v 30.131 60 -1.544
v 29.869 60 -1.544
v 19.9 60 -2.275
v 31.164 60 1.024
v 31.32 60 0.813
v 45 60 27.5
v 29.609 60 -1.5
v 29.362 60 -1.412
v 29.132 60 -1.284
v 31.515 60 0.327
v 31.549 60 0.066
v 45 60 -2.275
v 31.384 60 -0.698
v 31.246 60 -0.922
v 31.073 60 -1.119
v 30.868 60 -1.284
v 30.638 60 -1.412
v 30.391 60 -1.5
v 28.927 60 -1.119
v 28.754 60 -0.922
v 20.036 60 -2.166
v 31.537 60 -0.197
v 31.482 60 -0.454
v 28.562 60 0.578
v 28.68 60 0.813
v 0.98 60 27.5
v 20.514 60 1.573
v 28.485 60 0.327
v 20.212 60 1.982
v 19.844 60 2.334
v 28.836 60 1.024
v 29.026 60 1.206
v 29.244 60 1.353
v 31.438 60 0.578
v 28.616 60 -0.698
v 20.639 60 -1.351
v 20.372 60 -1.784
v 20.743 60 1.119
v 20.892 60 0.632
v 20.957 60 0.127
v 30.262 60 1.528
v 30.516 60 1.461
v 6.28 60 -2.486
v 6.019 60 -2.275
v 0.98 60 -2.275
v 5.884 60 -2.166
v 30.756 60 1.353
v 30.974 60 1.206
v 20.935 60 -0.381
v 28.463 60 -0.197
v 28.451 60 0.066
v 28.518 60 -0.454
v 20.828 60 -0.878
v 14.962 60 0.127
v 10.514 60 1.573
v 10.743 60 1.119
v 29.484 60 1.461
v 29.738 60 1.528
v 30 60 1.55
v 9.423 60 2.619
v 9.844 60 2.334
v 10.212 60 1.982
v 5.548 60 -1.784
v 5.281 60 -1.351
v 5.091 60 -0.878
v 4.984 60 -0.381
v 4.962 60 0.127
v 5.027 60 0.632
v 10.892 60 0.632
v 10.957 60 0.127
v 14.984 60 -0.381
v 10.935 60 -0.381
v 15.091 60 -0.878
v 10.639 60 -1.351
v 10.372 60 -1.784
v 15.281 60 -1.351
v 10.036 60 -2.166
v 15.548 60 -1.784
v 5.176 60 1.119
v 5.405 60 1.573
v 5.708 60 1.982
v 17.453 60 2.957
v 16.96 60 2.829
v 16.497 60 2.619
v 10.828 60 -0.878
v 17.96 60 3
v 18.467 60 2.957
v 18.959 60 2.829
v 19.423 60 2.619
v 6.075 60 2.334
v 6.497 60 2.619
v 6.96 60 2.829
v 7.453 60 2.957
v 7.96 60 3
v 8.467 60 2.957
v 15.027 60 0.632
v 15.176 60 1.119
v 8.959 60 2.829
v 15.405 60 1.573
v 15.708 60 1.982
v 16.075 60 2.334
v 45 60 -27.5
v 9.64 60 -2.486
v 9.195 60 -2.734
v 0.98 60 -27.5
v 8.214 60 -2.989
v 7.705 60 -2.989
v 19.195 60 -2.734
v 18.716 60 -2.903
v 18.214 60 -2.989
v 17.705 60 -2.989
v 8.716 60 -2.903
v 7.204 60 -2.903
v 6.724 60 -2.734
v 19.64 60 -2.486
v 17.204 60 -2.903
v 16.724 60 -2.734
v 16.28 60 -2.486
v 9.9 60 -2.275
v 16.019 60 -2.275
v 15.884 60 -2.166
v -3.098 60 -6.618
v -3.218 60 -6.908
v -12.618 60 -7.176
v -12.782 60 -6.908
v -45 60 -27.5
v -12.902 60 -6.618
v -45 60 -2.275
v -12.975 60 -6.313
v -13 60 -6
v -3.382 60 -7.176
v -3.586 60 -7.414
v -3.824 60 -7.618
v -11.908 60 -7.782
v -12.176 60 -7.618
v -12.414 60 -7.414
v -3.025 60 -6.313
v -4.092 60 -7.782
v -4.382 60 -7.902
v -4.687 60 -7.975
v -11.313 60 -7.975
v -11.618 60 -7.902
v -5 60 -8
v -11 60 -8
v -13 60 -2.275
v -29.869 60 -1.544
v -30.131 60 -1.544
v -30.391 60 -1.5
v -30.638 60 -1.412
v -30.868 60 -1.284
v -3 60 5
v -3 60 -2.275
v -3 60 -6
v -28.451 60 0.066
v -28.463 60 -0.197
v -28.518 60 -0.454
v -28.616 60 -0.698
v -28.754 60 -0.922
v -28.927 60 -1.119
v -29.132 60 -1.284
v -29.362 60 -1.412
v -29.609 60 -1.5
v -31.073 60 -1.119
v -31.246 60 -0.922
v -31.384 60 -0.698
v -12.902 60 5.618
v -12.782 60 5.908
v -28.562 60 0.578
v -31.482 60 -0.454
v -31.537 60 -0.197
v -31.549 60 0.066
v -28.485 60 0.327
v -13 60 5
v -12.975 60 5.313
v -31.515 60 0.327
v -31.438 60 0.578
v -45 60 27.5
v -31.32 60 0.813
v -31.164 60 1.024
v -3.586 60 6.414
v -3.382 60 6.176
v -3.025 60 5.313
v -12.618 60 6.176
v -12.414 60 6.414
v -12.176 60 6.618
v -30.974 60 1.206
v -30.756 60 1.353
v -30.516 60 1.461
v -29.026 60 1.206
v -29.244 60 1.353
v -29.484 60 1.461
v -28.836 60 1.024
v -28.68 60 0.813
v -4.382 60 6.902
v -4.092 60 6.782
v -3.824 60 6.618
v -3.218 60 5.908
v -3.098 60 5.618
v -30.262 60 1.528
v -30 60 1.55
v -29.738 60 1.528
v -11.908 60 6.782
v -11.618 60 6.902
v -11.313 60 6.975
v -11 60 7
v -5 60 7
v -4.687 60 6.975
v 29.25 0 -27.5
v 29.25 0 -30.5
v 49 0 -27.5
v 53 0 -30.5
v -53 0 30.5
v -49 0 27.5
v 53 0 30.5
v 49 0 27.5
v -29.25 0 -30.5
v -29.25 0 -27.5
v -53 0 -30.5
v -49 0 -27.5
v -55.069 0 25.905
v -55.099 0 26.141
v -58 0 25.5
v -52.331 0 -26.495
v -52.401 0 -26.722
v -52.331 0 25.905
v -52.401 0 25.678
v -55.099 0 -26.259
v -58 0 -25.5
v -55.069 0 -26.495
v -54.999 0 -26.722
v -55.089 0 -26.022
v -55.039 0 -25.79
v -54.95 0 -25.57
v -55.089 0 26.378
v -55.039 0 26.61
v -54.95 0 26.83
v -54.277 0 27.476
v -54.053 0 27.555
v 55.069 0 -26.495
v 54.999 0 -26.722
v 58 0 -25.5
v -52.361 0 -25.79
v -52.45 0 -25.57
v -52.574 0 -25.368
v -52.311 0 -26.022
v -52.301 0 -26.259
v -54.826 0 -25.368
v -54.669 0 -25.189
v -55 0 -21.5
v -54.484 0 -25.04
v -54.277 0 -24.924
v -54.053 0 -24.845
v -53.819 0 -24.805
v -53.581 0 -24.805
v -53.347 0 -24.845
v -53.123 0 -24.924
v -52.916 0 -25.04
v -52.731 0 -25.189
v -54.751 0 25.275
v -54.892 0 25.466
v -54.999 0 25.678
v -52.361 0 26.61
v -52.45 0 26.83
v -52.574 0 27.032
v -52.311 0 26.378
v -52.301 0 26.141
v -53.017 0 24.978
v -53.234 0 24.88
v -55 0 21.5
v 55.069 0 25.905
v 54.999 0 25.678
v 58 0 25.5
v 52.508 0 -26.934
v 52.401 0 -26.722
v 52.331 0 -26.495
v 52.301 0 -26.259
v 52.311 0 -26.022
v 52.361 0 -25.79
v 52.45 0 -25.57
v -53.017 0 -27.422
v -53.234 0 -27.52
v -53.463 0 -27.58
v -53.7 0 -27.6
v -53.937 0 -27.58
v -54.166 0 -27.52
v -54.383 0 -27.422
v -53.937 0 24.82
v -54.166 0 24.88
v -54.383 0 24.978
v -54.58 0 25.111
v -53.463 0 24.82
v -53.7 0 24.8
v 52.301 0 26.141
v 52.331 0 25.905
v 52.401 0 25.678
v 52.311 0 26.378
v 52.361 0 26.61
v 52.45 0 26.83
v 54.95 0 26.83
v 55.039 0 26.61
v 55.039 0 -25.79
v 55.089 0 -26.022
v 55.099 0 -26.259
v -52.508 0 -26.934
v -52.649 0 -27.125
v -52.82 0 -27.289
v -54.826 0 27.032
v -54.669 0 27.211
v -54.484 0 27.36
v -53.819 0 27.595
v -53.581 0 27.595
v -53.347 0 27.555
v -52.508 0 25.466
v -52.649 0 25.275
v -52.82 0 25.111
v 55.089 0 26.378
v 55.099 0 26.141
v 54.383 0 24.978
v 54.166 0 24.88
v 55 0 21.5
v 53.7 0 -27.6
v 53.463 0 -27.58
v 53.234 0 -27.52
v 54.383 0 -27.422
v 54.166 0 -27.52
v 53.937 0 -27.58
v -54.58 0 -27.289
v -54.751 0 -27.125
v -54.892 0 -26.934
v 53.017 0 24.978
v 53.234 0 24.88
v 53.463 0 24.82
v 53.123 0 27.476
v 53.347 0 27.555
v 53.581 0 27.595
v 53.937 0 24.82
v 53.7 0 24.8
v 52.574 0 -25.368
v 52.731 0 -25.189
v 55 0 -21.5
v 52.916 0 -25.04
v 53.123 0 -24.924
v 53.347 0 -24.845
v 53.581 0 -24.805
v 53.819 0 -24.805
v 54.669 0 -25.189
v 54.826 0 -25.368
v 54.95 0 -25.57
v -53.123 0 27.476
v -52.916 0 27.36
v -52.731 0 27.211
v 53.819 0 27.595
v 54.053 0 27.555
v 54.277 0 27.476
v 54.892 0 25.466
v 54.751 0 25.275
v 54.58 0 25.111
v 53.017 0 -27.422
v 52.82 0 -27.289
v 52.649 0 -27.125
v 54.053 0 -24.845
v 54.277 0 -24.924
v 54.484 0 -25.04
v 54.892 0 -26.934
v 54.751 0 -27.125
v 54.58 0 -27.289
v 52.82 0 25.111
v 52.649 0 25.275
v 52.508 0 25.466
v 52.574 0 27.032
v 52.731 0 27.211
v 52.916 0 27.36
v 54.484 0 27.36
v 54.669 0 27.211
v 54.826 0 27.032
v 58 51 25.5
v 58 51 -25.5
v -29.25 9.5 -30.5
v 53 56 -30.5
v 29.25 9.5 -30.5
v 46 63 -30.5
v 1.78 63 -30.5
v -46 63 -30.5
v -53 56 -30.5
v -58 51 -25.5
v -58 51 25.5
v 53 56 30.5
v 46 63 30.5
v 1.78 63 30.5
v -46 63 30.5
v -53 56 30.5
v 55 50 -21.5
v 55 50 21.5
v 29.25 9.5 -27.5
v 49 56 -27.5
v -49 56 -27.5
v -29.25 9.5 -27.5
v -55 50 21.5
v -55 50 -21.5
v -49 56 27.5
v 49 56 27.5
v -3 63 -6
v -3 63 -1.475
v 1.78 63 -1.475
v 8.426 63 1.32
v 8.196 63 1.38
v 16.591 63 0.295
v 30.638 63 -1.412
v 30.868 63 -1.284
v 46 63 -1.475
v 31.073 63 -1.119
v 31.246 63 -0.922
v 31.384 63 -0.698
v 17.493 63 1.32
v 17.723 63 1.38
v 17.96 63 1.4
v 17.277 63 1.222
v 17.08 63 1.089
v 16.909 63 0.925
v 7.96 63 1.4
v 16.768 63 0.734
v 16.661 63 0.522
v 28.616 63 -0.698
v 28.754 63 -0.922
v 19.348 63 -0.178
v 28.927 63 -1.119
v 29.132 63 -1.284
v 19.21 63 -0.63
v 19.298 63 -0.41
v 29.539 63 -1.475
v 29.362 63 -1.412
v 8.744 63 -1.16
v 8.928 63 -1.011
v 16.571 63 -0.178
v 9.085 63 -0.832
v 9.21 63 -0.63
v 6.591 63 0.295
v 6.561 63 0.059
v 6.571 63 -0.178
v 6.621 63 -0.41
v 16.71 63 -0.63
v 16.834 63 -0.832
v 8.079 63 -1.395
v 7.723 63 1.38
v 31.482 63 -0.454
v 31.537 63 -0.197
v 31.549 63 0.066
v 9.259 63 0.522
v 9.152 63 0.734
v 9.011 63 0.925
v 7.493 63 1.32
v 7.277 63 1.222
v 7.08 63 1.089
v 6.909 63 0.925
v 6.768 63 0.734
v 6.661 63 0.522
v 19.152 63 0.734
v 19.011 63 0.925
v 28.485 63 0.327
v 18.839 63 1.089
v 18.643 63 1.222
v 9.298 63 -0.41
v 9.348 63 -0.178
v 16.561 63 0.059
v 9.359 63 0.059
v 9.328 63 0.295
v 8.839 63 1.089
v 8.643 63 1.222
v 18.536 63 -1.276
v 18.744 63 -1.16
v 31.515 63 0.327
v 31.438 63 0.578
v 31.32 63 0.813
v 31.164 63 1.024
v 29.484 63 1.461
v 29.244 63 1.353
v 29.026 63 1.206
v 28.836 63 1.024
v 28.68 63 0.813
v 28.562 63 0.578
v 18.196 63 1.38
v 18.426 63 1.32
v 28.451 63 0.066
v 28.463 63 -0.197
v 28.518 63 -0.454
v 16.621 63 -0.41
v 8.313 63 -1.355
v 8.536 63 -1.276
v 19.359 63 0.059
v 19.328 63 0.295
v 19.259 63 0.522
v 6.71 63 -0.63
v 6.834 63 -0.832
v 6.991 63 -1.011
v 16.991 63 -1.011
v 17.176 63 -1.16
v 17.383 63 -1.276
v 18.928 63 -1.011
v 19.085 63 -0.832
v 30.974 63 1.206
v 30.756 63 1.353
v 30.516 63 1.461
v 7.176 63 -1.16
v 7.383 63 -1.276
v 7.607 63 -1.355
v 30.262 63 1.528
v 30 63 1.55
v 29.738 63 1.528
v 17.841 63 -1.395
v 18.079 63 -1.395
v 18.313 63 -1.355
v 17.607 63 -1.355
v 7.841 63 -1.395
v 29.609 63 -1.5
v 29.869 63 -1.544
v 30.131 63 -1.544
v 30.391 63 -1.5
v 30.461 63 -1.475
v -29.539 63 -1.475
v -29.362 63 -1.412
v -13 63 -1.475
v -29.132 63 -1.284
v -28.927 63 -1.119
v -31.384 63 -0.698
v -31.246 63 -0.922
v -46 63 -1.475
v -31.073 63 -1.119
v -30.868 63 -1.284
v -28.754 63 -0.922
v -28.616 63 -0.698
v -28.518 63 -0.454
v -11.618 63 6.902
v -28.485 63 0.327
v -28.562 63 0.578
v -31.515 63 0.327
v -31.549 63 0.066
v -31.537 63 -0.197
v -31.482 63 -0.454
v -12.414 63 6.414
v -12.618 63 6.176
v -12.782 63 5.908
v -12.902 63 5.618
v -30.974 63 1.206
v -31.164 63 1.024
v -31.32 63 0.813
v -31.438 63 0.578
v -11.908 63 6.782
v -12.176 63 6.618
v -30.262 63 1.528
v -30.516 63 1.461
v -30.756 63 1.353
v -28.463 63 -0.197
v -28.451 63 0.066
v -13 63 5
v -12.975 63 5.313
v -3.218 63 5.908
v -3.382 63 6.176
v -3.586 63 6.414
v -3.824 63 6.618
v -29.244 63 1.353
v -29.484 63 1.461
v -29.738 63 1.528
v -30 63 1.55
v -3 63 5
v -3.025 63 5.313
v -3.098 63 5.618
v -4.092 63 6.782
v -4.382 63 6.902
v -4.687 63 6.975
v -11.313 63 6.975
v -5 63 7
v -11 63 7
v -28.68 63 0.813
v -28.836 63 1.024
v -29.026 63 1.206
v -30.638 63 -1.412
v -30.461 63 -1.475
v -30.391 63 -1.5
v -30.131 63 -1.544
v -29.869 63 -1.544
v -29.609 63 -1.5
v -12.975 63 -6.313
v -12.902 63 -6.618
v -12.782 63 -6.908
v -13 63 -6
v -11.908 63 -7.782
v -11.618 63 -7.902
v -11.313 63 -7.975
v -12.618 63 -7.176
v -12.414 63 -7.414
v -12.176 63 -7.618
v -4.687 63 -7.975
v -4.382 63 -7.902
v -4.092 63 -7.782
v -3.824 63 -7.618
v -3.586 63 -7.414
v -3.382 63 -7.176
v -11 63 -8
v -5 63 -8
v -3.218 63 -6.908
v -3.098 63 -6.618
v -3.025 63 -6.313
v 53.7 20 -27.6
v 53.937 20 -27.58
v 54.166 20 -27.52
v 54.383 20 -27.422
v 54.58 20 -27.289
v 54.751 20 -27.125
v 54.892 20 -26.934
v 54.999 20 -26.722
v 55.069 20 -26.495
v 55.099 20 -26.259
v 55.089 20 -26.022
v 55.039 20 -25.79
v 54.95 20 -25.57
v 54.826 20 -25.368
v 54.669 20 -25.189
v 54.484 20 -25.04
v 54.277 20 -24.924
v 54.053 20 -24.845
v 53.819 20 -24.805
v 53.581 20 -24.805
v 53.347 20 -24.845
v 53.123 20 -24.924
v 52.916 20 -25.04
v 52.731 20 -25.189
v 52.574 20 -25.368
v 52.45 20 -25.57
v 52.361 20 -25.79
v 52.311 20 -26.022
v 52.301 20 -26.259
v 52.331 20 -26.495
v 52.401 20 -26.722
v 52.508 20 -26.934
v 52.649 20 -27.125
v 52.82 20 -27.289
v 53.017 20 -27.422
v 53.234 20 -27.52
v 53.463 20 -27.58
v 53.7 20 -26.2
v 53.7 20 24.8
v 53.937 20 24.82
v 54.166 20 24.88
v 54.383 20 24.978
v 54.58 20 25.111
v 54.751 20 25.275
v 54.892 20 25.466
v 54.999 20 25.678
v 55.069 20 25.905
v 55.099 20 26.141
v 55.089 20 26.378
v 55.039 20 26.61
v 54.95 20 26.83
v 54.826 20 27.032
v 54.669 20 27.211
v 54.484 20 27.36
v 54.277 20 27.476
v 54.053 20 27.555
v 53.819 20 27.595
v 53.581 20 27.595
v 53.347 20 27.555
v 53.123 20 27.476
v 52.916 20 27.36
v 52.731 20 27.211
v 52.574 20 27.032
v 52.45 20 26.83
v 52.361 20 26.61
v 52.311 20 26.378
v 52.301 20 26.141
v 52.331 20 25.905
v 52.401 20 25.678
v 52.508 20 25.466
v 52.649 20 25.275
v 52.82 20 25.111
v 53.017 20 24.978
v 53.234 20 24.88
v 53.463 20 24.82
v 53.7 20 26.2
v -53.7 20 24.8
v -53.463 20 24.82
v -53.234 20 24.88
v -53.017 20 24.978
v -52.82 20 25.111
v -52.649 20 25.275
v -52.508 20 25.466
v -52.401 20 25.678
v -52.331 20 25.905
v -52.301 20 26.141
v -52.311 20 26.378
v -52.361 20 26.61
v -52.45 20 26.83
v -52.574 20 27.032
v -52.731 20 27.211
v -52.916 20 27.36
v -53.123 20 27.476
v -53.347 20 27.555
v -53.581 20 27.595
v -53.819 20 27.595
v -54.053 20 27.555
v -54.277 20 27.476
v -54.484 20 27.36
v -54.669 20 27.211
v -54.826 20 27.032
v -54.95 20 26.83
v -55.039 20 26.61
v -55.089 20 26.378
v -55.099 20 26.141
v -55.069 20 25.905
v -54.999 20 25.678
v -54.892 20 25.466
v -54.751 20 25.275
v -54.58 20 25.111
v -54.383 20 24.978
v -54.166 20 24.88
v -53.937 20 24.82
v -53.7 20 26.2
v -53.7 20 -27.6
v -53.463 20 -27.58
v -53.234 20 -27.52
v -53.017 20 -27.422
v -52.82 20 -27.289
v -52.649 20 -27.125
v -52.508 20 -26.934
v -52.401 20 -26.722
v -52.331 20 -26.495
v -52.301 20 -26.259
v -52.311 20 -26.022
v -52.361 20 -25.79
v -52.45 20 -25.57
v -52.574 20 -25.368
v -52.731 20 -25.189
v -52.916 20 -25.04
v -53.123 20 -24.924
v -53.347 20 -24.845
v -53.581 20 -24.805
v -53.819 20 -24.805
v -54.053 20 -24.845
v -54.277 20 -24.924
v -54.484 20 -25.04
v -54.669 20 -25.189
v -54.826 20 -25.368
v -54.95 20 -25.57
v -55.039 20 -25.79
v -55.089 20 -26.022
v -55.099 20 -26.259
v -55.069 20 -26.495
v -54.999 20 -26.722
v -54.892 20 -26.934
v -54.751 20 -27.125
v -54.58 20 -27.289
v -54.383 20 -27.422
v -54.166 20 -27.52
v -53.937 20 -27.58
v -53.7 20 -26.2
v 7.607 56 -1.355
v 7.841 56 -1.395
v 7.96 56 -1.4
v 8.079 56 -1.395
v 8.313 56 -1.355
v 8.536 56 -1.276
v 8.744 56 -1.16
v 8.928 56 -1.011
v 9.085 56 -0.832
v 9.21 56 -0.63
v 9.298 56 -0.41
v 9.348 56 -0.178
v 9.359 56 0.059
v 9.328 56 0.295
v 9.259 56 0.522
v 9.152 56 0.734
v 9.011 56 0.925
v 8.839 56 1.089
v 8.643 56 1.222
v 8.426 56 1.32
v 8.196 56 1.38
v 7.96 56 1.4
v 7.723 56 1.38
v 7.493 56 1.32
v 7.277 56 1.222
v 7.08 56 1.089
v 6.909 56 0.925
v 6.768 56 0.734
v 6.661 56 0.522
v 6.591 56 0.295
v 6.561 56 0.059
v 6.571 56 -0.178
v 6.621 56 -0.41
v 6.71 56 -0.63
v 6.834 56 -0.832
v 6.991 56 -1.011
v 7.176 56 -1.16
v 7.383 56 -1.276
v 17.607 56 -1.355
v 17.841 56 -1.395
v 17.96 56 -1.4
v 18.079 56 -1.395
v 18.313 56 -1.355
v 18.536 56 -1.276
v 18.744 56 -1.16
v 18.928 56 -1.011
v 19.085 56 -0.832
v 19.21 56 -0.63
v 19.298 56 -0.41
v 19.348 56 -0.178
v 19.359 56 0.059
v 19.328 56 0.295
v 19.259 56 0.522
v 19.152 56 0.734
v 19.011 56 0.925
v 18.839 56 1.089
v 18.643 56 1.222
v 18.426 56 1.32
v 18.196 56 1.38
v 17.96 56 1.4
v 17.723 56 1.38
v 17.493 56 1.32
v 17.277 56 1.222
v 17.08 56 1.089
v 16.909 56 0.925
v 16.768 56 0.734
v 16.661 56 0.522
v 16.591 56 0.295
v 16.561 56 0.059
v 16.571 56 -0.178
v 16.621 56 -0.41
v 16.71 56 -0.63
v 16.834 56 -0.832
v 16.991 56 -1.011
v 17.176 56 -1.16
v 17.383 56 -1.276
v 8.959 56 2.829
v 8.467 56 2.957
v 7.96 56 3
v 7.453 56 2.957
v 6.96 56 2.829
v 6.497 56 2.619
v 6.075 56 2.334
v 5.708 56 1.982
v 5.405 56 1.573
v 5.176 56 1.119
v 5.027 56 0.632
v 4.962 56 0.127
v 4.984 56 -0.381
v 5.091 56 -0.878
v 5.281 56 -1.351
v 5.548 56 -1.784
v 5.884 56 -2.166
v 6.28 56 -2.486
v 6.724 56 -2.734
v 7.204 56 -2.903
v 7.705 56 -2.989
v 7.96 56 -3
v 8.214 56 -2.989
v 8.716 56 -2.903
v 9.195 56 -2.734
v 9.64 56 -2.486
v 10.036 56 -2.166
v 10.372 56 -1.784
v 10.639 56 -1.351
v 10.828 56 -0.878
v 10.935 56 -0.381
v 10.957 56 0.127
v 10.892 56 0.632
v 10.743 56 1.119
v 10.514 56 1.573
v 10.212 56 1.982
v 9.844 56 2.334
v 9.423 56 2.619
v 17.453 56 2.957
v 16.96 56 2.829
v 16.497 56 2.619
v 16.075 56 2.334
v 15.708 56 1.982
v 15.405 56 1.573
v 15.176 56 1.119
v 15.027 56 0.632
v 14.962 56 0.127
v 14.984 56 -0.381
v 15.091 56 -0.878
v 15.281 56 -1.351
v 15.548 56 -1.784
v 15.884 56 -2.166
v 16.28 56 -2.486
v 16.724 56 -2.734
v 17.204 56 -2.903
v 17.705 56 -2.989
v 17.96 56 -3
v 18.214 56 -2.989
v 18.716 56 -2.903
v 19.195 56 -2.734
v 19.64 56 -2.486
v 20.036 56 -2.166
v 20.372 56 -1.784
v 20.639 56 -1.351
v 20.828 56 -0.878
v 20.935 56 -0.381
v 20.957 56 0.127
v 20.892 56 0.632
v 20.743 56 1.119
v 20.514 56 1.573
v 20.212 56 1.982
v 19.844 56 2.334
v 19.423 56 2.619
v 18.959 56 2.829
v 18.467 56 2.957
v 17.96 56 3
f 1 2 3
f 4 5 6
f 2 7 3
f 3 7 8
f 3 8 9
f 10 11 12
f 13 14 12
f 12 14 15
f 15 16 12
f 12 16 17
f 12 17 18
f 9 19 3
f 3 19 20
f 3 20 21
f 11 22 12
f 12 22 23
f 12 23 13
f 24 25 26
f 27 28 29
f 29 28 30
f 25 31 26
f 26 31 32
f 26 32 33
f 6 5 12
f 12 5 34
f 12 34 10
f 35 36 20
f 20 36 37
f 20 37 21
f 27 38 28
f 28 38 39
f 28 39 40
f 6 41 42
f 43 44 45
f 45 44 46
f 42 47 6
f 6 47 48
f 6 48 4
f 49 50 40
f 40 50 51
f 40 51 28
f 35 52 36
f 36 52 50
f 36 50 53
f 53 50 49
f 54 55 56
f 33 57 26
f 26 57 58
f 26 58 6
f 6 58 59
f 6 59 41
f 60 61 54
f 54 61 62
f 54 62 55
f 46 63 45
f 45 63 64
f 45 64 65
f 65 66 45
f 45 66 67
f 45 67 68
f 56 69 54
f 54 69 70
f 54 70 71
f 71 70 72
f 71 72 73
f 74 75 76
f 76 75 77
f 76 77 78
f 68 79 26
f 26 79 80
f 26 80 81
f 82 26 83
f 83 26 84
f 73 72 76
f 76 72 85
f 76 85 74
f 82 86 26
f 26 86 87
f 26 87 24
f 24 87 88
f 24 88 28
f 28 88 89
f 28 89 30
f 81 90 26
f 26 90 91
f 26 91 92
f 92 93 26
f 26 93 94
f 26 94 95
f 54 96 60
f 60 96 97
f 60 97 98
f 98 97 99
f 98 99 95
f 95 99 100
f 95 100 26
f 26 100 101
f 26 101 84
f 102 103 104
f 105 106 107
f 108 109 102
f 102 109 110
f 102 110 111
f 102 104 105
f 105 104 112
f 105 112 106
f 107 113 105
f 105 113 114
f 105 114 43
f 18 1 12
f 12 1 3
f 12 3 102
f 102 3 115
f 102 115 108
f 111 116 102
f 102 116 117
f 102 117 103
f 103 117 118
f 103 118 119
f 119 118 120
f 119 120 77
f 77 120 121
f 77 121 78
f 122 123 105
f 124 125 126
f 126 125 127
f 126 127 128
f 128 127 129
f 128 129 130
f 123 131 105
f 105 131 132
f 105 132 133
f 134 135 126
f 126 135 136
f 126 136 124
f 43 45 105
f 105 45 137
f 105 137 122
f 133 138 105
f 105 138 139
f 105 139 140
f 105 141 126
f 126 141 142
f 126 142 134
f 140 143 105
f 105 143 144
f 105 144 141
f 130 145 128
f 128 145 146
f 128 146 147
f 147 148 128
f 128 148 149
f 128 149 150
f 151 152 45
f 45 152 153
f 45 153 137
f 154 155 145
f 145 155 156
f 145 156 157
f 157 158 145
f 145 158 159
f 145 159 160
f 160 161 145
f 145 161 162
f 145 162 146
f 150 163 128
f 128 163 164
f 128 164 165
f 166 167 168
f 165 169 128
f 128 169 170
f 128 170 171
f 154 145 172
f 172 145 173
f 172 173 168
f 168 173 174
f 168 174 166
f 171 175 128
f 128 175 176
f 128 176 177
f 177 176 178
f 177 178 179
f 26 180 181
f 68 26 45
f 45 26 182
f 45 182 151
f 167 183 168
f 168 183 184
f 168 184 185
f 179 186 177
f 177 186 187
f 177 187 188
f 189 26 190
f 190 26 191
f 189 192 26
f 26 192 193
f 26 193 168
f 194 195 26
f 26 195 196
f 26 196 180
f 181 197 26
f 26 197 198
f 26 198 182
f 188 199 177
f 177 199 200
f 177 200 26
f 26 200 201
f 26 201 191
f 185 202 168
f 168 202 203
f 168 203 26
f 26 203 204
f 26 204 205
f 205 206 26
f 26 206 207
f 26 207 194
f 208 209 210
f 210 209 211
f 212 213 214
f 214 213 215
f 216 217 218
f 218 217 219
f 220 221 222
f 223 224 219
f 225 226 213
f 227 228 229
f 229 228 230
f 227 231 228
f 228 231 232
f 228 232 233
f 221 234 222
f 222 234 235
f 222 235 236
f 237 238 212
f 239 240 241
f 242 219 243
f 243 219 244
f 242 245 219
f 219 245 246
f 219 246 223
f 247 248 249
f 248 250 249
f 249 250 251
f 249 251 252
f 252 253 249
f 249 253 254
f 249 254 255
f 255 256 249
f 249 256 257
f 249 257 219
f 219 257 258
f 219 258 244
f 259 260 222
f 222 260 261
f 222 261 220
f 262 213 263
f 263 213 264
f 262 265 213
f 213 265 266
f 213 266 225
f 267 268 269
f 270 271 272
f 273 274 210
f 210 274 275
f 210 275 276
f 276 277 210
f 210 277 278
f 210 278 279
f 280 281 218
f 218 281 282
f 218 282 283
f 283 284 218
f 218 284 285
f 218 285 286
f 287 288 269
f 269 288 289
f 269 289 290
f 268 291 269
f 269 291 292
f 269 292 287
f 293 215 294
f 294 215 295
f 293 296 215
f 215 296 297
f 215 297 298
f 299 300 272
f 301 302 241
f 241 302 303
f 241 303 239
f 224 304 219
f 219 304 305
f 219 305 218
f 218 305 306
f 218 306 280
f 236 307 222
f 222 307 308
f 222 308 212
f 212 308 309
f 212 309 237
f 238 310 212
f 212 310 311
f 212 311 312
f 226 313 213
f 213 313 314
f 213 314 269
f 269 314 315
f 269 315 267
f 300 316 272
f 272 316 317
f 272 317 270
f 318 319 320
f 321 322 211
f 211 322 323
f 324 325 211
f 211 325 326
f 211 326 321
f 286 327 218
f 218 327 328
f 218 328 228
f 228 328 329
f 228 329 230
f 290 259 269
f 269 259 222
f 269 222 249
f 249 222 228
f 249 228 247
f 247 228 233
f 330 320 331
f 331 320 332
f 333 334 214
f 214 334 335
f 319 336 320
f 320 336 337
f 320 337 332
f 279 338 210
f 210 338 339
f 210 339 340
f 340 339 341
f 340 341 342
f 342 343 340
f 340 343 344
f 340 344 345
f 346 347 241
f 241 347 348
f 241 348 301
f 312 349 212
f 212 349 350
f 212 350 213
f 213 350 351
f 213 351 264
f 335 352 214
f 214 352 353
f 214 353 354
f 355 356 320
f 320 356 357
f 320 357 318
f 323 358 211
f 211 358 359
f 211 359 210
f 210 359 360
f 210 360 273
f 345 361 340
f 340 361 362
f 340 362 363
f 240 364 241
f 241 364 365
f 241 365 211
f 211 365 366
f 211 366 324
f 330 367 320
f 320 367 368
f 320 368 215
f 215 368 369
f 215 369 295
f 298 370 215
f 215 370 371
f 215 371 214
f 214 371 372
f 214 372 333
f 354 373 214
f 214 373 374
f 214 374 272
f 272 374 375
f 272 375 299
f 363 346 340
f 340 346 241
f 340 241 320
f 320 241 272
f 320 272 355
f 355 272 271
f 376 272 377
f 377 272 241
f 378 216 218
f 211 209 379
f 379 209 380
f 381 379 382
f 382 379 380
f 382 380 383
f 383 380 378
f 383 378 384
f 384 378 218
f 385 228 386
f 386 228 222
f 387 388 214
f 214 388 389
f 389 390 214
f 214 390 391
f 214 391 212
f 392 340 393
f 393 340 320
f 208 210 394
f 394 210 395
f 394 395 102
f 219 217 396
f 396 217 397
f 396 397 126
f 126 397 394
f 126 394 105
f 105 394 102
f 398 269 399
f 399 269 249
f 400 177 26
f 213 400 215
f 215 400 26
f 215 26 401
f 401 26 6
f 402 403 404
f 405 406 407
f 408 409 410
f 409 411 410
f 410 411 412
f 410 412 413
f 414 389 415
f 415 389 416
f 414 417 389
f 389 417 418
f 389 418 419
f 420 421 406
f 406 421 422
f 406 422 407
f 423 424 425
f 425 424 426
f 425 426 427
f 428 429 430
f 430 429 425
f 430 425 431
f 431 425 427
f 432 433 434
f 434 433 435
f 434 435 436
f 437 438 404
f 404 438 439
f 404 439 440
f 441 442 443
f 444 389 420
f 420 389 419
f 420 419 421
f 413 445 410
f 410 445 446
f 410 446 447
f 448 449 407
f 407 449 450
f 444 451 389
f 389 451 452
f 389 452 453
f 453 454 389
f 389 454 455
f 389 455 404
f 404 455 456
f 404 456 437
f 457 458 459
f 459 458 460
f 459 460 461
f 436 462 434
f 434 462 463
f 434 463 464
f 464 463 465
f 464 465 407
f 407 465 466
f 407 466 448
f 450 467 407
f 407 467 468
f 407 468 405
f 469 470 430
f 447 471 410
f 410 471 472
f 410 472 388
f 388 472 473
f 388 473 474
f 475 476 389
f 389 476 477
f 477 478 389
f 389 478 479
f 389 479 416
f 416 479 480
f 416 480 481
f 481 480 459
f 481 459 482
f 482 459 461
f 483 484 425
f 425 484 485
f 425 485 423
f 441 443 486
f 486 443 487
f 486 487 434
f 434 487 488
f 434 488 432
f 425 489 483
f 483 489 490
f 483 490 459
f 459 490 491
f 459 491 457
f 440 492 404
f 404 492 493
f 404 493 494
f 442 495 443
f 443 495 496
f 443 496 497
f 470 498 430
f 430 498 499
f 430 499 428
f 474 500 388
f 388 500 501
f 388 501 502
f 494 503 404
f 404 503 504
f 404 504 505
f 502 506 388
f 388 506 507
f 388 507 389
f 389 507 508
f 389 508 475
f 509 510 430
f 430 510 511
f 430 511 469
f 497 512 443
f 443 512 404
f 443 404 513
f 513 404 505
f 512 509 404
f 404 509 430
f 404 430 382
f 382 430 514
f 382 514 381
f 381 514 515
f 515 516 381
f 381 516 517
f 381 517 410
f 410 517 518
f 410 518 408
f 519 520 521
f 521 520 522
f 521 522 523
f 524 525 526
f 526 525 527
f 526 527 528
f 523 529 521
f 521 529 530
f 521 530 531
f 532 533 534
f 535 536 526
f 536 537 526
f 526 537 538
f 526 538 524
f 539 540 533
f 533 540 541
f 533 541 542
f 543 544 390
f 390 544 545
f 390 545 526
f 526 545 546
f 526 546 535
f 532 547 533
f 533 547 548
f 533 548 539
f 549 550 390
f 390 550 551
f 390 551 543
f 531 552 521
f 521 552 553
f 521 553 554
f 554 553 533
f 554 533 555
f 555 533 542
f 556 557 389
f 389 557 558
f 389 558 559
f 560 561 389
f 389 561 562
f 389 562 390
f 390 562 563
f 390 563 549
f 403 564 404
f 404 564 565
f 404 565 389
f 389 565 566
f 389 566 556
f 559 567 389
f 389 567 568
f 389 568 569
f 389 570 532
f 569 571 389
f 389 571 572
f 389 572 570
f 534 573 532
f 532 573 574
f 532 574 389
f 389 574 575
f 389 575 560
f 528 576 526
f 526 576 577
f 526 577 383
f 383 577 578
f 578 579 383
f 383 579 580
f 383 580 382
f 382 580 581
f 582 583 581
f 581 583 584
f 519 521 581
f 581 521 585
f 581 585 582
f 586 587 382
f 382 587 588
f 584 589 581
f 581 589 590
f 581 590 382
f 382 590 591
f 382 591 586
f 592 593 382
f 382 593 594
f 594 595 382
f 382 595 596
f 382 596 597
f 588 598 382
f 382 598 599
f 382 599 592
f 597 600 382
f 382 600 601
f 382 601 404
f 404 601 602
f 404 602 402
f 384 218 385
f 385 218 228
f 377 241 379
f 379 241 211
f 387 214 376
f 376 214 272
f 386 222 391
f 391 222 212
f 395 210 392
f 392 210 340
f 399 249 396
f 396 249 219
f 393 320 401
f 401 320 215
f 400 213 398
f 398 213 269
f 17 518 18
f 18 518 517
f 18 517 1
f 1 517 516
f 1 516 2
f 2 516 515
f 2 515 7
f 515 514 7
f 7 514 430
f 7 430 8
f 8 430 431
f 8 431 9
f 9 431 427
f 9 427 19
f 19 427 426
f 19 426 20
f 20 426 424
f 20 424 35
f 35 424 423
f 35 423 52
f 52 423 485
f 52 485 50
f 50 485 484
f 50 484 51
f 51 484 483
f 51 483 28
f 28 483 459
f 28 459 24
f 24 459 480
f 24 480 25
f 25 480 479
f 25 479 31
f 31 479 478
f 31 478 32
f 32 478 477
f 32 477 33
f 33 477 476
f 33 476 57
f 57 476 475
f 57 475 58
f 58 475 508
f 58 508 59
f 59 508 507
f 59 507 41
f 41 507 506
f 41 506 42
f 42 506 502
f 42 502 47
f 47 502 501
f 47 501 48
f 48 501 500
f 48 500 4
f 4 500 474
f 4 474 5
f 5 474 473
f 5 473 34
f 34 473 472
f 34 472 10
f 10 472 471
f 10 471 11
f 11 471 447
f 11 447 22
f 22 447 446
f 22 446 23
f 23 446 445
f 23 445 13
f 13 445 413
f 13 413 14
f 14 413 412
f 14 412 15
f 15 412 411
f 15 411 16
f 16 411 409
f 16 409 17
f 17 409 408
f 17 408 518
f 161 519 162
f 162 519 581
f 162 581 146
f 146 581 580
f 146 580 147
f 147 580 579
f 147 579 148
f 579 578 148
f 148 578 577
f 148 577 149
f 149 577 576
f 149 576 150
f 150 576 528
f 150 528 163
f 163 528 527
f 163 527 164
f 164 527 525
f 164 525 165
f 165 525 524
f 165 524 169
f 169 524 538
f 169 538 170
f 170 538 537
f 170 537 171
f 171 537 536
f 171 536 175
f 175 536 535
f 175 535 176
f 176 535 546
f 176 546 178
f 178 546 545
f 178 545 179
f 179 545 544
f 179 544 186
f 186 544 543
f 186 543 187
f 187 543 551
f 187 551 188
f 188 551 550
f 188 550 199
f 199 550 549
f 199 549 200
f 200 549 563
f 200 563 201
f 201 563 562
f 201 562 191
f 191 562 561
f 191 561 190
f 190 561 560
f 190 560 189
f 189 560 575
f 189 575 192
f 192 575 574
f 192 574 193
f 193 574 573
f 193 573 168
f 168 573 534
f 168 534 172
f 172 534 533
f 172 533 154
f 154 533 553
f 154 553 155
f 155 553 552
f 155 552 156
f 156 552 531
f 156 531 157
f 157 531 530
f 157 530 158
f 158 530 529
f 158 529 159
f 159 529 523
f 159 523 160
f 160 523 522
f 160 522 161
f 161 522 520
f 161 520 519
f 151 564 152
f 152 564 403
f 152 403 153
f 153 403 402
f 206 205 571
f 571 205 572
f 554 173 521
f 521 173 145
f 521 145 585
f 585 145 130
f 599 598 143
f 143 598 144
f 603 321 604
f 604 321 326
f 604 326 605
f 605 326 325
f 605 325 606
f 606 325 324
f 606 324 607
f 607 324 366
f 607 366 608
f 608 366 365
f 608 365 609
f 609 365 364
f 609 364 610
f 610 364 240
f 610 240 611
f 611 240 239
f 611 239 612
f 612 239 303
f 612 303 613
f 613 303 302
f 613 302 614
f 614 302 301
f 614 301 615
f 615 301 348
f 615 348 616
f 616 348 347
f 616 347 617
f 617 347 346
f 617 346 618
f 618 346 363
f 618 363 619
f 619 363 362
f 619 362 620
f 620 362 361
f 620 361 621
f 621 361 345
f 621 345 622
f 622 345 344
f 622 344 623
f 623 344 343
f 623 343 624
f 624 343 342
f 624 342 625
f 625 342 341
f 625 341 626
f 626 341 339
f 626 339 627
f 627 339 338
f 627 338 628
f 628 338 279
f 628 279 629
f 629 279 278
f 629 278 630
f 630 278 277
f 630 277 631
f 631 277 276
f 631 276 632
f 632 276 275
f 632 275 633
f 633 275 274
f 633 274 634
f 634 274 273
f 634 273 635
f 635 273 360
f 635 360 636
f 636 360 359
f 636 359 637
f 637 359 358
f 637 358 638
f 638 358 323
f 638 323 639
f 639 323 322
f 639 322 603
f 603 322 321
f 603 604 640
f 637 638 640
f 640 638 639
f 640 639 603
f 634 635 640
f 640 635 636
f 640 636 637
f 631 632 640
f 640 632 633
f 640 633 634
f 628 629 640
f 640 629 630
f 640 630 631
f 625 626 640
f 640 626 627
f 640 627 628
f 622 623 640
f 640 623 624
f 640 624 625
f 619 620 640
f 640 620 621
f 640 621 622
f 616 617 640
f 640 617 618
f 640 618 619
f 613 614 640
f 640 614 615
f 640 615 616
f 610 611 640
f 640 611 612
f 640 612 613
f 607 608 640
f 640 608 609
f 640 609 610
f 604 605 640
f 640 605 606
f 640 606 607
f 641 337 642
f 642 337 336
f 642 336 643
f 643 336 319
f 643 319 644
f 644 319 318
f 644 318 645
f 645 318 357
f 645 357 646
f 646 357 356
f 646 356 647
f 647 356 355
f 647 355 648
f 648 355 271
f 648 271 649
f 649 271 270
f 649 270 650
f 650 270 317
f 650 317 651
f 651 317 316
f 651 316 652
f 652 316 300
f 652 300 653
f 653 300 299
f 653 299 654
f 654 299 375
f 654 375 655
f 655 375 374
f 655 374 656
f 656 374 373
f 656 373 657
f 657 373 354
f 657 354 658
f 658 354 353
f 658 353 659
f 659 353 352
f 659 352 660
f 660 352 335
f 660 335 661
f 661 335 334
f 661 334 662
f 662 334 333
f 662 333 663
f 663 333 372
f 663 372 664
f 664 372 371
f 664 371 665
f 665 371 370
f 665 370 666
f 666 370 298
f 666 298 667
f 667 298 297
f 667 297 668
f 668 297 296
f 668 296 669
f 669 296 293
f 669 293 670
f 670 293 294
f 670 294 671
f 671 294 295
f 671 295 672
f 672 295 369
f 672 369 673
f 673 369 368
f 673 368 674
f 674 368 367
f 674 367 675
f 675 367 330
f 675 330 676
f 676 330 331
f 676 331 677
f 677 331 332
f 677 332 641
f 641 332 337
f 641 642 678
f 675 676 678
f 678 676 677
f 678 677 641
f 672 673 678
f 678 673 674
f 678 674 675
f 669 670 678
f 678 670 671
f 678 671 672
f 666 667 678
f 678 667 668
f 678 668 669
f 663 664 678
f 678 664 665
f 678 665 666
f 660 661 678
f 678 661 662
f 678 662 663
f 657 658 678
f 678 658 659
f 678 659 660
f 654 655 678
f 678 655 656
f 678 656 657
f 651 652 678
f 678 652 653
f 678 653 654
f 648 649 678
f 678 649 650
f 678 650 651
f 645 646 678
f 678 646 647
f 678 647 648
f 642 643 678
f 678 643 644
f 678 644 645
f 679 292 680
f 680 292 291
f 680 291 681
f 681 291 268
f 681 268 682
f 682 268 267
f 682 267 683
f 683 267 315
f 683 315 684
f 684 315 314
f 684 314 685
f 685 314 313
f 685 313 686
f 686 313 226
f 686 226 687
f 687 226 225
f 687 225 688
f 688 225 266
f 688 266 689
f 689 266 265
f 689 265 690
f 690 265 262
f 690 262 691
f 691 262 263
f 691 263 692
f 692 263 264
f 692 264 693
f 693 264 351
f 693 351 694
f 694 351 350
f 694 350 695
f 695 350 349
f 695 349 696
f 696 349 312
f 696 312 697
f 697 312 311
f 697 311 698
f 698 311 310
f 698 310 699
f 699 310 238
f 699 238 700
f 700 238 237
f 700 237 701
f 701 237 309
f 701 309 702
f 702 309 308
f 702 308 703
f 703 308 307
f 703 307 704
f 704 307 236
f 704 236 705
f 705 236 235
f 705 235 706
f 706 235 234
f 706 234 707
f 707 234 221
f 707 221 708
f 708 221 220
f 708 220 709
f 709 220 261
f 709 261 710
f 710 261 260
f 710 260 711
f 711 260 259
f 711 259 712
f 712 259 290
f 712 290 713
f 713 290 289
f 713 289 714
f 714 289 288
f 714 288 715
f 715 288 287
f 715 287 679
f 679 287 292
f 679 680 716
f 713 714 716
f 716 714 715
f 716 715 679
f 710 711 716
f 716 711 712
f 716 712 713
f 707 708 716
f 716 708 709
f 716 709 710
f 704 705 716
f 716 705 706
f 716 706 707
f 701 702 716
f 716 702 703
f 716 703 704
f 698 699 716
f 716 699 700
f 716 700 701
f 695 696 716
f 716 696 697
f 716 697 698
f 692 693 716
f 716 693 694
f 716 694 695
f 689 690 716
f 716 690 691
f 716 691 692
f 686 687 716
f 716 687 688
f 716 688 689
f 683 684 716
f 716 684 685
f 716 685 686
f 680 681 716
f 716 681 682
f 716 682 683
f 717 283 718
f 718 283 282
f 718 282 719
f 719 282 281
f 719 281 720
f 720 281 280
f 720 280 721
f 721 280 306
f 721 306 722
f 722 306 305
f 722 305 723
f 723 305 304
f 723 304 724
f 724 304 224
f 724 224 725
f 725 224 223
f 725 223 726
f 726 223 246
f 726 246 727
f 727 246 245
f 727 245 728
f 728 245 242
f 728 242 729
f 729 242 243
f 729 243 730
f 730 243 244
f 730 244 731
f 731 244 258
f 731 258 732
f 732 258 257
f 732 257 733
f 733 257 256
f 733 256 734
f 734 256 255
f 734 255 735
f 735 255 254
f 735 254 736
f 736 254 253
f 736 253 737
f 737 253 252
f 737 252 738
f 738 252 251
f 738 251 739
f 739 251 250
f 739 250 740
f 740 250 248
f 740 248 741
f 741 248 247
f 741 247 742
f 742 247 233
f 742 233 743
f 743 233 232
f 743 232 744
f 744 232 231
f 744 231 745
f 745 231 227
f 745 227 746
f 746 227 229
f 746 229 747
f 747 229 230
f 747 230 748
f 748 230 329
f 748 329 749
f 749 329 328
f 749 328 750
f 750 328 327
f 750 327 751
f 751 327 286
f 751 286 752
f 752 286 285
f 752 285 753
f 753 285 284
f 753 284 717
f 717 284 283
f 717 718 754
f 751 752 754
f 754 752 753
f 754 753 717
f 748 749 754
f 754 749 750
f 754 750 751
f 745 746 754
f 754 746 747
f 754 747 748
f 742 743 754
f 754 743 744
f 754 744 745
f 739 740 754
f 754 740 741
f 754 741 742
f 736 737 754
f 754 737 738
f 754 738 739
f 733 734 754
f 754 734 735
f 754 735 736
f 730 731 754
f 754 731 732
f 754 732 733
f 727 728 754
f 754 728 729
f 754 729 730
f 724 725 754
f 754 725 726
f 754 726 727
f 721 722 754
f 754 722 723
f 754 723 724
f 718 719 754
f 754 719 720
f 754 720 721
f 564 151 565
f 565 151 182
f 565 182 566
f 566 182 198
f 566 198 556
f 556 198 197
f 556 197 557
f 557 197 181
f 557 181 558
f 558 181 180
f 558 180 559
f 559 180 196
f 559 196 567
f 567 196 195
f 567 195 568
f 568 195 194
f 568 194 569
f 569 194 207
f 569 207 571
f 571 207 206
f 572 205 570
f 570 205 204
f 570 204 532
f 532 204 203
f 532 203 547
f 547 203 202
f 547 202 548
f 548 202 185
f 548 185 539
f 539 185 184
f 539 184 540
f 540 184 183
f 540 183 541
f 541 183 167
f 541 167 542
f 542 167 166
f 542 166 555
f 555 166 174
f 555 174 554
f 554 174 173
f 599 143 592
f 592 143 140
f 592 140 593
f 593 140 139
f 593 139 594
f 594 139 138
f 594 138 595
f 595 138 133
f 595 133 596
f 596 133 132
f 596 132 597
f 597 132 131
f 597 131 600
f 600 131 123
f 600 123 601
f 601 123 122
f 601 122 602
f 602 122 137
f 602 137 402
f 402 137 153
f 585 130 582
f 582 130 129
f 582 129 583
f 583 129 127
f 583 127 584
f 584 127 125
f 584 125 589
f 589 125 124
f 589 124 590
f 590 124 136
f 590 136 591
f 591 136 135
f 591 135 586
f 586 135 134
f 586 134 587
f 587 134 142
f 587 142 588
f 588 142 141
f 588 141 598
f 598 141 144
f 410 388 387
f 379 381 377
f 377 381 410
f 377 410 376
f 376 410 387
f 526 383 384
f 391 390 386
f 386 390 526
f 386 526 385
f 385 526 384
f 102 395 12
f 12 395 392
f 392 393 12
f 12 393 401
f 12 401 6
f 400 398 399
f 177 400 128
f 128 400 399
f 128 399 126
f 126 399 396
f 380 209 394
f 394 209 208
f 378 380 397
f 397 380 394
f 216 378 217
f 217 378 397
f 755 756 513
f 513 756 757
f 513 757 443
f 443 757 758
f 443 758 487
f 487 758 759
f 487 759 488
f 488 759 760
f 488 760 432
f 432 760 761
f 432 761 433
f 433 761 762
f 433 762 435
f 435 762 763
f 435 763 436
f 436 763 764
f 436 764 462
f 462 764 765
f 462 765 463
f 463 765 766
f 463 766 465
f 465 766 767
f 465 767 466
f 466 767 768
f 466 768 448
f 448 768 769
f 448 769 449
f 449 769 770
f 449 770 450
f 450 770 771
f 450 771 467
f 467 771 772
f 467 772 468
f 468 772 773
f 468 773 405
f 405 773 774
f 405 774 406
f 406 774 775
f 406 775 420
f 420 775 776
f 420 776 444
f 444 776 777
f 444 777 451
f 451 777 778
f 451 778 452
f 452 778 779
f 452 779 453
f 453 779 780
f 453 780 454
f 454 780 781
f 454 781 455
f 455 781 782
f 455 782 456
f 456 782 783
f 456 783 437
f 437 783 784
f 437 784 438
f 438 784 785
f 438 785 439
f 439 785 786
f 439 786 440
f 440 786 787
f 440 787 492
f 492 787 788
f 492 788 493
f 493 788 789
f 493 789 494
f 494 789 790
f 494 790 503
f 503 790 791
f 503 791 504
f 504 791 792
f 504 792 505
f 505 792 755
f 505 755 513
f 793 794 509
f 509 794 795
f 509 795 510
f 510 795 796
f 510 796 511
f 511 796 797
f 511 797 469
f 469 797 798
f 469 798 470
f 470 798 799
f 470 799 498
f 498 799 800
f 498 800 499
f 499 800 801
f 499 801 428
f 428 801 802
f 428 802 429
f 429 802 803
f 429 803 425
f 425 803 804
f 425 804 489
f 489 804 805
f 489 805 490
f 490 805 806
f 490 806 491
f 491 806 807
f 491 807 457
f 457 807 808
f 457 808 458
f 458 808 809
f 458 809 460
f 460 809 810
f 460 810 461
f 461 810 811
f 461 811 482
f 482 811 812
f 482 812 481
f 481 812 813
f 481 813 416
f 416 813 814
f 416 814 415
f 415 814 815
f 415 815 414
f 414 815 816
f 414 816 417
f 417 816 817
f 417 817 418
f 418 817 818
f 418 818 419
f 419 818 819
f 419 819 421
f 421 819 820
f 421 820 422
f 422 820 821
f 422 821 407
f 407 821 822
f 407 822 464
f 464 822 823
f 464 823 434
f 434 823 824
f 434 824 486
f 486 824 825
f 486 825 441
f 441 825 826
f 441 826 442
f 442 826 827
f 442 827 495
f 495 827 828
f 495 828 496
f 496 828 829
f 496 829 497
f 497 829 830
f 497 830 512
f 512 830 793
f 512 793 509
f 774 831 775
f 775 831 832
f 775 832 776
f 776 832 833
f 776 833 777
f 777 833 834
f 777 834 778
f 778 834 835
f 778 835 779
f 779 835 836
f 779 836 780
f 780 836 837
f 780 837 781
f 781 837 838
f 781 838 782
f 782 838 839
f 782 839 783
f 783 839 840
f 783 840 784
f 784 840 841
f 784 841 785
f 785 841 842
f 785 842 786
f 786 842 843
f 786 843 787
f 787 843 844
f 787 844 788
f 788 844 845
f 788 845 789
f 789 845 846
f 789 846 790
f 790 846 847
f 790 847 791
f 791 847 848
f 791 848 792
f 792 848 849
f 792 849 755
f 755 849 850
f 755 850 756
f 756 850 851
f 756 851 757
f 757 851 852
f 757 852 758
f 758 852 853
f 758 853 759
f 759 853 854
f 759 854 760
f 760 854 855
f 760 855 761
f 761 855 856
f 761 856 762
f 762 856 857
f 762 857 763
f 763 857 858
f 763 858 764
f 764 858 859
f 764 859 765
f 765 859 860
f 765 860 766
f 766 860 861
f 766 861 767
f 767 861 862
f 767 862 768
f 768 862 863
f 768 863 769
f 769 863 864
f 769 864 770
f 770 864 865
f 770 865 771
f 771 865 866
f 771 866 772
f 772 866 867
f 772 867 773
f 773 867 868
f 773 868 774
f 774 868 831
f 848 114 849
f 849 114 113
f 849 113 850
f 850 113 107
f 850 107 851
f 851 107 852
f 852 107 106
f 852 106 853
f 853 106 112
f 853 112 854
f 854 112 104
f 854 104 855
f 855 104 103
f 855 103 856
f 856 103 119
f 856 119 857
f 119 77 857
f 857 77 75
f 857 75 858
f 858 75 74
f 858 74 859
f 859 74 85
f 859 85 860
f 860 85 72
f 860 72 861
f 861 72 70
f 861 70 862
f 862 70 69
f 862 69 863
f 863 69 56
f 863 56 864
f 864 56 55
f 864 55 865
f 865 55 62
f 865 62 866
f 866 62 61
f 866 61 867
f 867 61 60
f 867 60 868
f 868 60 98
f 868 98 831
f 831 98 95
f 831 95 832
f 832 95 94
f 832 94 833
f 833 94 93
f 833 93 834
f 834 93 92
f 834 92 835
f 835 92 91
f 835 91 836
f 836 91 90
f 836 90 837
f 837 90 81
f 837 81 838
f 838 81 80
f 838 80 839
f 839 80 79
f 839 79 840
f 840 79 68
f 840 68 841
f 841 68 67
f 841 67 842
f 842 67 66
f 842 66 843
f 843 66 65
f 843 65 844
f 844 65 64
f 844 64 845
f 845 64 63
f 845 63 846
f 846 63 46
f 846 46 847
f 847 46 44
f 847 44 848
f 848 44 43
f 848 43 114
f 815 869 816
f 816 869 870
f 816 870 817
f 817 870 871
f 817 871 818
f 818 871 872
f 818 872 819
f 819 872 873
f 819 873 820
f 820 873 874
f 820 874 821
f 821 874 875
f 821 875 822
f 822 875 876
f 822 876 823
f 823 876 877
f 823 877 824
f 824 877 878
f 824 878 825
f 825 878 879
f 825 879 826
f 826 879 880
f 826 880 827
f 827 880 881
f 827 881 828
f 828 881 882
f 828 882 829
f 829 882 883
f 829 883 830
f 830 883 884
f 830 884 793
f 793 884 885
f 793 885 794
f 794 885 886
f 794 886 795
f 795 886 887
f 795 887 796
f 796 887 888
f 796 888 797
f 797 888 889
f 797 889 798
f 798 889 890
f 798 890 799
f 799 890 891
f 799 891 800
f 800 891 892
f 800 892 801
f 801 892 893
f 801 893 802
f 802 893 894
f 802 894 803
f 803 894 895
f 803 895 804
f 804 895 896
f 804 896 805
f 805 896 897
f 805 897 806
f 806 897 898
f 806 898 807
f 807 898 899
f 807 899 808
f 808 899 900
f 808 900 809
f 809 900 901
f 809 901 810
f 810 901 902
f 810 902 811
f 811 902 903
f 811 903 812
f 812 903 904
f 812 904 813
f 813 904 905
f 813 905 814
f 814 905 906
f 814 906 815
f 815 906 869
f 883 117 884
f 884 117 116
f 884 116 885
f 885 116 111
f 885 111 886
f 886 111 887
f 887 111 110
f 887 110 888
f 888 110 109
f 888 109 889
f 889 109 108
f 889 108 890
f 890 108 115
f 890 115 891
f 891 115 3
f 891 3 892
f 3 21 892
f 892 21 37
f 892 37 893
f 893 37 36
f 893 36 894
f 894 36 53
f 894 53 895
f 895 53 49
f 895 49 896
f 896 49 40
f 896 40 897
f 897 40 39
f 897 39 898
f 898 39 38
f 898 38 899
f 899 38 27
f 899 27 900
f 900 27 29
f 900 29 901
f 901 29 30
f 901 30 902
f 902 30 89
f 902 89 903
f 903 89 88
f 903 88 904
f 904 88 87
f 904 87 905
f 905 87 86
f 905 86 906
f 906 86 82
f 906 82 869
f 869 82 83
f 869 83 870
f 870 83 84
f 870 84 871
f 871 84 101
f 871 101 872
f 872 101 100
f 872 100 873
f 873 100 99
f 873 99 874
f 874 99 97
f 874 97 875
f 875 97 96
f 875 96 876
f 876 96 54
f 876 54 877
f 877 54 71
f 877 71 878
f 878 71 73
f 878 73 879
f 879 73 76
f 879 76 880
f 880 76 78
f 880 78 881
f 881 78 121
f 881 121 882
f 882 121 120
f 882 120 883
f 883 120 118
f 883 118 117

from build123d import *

# Parameters (mm, degrees)
SKETCH1_W           = 116
SKETCH1_H           = 61
SKETCH1_W_2         = 110
SKETCH1_H_2         = 55
BOSS_EXTRUDE1_DEPTH = 60
SKETCH2_W           = 116
SKETCH2_H           = 61
BOSS_EXTRUDE2_DEPTH = 3
CHAMFER1_SIZE       = 5
CHAMFER2_SIZE       = 6
SKETCH3_R           = 1.55
CUT_EXTRUDE1_DEPTH  = 3
SKETCH4_W           = 10
SKETCH4_H           = 15
CUT_EXTRUDE2_DEPTH  = 3
SKETCH5_R           = 1.4
CUT_EXTRUDE3_DEPTH  = 20
FILLET1_R           = 2
CHAMFER3_SIZE       = 12
CHAMFER4_SIZE       = 10
SKETCH6_W           = 58.5
SKETCH6_H           = 9.5
CUT_EXTRUDE4_DEPTH  = 10
SKETCH7_R           = 1.4
CUT_EXTRUDE5_DEPTH  = 10
SKETCH8_R           = 3
SKETCH8_R_2         = 1.4
BOSS_EXTRUDE3_DEPTH = 4


with BuildPart() as part:
    # Sketch1 → Boss-Extrude1 (new body)
    with BuildSketch(Plane(origin=(0, 0, 0), x_dir=(1, 0, 0), z_dir=(0, 1, 0))):
        Rectangle(SKETCH1_W, SKETCH1_H)
        Rectangle(SKETCH1_W_2, SKETCH1_H_2, mode=Mode.SUBTRACT)
    extrude(amount=BOSS_EXTRUDE1_DEPTH)

    # Sketch2 → Boss-Extrude2 (add)
    with BuildSketch(Plane(origin=(0, 60, 0), x_dir=(1, 0, 0), z_dir=(0, 1, 0))):
        Rectangle(SKETCH2_W, SKETCH2_H)
    extrude(amount=BOSS_EXTRUDE2_DEPTH)

    # Chamfer1
    chamfer1_edges = [part.edges().sort_by_distance(p)[0] for p in [
        (58, 31.5, 30.5),
        (-58, 31.5, 30.5),
        (-58, 31.5, -30.5),
        (58, 31.5, -30.5),
    ]]
    chamfer(chamfer1_edges, length=CHAMFER1_SIZE)

    # Chamfer2
    chamfer2_edges = [part.edges().sort_by_distance(p)[0] for p in [
        (55, 30, 27.5),
        (55, 30, -27.5),
        (-55, 30, -27.5),
        (-55, 30, 27.5),
    ]]
    chamfer(chamfer2_edges, length=CHAMFER2_SIZE)

    # Sketch3 → Cut-Extrude1 (cut)
    with BuildSketch(Plane(origin=(0, 63, 0), x_dir=(1, 0, 0), z_dir=(0, 1, 0))):
        with Locations(Location((30, 0, 0), (0, 0, 270))):
            Circle(SKETCH3_R)
        with Locations(Location((-30, 0, 0), (0, 0, 270))):
            Circle(SKETCH3_R)
    extrude(amount=-CUT_EXTRUDE1_DEPTH, mode=Mode.SUBTRACT)

    # Sketch4 → Cut-Extrude2 (cut)
    with BuildSketch(Plane(origin=(0, 63, 0), x_dir=(1, 0, 0), z_dir=(0, 1, 0))):
        with Locations((-8, 0.5)):
            Rectangle(SKETCH4_W, SKETCH4_H)
    extrude(amount=-CUT_EXTRUDE2_DEPTH, mode=Mode.SUBTRACT)

    # Sketch5 → Cut-Extrude3 (cut)
    with BuildSketch(Plane.XZ):
        with Locations(Location((53.7, -26.2, 0), (0, 0, 270))):
            Circle(SKETCH5_R)
        with Locations(Location((-53.7, -26.2, 0), (0, 0, 270))):
            Circle(SKETCH5_R)
        with Locations(Location((-53.7, 26.2, 0), (0, 0, 270))):
            Circle(SKETCH5_R)
        with Locations(Location((53.7, 26.2, 0), (0, 0, 270))):
            Circle(SKETCH5_R)
    extrude(amount=-CUT_EXTRUDE3_DEPTH, mode=Mode.SUBTRACT)

    # Fillet1
    fillet1_edges = [part.edges().sort_by_distance(p)[0] for p in [
        (-3, 61.5, -8),
        (-3, 61.5, 7),
        (-13, 61.5, 7),
        (-13, 61.5, -8),
    ]]
    fillet(fillet1_edges, radius=FILLET1_R)

    # Chamfer3
    chamfer3_edges = [part.edges().sort_by_distance(p)[0] for p in [
        (58, 63, 0),
        (-58, 63, 0),
    ]]
    chamfer(chamfer3_edges, length=CHAMFER3_SIZE)

    # Chamfer4
    chamfer4_edges = [part.edges().sort_by_distance(p)[0] for p in [
        (55, 60, 0),
        (-55, 60, 0),
    ]]
    chamfer(chamfer4_edges, length=CHAMFER4_SIZE)

    # Sketch6 → Cut-Extrude4 (cut)
    with BuildSketch(Plane(origin=(0, 0, -30.5), x_dir=(-1, 0, 0), z_dir=(0, 0, -1))):
        with Locations((0, 4.75)):
            Rectangle(SKETCH6_W, SKETCH6_H)
    extrude(amount=-CUT_EXTRUDE4_DEPTH, mode=Mode.SUBTRACT)

    # Sketch7 → Cut-Extrude5 (cut)
    with BuildSketch(Plane(origin=(0, 63, 0), x_dir=(1, 0, 0), z_dir=(0, 1, 0))):
        with Locations(Location((7.959772519, 0, 0), (0, 0, 270))):
            Circle(SKETCH7_R)
        with Locations(Location((17.959772519, 0, 0), (0, 0, 270))):
            Circle(SKETCH7_R)
    extrude(amount=-CUT_EXTRUDE5_DEPTH, mode=Mode.SUBTRACT)

    # Sketch8 → Boss-Extrude3 (add)
    # profile 1 of 2: a face of its own
    with BuildSketch(Plane.XZ.offset(-60)):
        with Locations(Location((7.959772519, 0, 0), (0, 0, 90))):
            Circle(SKETCH8_R)
        with Locations(Location((7.959772519, 0, 0), (0, 0, 90))):
            Circle(SKETCH8_R_2, mode=Mode.SUBTRACT)
    # profile 2 of 2: a face of its own
    with BuildSketch(Plane.XZ.offset(-60)):
        with Locations(Location((17.959772519, 0, 0), (0, 0, 90))):
            Circle(SKETCH8_R)
        with Locations(Location((17.959772519, 0, 0), (0, 0, 90))):
            Circle(SKETCH8_R_2, mode=Mode.SUBTRACT)
    extrude(amount=BOSS_EXTRUDE3_DEPTH)


solid = part.part
